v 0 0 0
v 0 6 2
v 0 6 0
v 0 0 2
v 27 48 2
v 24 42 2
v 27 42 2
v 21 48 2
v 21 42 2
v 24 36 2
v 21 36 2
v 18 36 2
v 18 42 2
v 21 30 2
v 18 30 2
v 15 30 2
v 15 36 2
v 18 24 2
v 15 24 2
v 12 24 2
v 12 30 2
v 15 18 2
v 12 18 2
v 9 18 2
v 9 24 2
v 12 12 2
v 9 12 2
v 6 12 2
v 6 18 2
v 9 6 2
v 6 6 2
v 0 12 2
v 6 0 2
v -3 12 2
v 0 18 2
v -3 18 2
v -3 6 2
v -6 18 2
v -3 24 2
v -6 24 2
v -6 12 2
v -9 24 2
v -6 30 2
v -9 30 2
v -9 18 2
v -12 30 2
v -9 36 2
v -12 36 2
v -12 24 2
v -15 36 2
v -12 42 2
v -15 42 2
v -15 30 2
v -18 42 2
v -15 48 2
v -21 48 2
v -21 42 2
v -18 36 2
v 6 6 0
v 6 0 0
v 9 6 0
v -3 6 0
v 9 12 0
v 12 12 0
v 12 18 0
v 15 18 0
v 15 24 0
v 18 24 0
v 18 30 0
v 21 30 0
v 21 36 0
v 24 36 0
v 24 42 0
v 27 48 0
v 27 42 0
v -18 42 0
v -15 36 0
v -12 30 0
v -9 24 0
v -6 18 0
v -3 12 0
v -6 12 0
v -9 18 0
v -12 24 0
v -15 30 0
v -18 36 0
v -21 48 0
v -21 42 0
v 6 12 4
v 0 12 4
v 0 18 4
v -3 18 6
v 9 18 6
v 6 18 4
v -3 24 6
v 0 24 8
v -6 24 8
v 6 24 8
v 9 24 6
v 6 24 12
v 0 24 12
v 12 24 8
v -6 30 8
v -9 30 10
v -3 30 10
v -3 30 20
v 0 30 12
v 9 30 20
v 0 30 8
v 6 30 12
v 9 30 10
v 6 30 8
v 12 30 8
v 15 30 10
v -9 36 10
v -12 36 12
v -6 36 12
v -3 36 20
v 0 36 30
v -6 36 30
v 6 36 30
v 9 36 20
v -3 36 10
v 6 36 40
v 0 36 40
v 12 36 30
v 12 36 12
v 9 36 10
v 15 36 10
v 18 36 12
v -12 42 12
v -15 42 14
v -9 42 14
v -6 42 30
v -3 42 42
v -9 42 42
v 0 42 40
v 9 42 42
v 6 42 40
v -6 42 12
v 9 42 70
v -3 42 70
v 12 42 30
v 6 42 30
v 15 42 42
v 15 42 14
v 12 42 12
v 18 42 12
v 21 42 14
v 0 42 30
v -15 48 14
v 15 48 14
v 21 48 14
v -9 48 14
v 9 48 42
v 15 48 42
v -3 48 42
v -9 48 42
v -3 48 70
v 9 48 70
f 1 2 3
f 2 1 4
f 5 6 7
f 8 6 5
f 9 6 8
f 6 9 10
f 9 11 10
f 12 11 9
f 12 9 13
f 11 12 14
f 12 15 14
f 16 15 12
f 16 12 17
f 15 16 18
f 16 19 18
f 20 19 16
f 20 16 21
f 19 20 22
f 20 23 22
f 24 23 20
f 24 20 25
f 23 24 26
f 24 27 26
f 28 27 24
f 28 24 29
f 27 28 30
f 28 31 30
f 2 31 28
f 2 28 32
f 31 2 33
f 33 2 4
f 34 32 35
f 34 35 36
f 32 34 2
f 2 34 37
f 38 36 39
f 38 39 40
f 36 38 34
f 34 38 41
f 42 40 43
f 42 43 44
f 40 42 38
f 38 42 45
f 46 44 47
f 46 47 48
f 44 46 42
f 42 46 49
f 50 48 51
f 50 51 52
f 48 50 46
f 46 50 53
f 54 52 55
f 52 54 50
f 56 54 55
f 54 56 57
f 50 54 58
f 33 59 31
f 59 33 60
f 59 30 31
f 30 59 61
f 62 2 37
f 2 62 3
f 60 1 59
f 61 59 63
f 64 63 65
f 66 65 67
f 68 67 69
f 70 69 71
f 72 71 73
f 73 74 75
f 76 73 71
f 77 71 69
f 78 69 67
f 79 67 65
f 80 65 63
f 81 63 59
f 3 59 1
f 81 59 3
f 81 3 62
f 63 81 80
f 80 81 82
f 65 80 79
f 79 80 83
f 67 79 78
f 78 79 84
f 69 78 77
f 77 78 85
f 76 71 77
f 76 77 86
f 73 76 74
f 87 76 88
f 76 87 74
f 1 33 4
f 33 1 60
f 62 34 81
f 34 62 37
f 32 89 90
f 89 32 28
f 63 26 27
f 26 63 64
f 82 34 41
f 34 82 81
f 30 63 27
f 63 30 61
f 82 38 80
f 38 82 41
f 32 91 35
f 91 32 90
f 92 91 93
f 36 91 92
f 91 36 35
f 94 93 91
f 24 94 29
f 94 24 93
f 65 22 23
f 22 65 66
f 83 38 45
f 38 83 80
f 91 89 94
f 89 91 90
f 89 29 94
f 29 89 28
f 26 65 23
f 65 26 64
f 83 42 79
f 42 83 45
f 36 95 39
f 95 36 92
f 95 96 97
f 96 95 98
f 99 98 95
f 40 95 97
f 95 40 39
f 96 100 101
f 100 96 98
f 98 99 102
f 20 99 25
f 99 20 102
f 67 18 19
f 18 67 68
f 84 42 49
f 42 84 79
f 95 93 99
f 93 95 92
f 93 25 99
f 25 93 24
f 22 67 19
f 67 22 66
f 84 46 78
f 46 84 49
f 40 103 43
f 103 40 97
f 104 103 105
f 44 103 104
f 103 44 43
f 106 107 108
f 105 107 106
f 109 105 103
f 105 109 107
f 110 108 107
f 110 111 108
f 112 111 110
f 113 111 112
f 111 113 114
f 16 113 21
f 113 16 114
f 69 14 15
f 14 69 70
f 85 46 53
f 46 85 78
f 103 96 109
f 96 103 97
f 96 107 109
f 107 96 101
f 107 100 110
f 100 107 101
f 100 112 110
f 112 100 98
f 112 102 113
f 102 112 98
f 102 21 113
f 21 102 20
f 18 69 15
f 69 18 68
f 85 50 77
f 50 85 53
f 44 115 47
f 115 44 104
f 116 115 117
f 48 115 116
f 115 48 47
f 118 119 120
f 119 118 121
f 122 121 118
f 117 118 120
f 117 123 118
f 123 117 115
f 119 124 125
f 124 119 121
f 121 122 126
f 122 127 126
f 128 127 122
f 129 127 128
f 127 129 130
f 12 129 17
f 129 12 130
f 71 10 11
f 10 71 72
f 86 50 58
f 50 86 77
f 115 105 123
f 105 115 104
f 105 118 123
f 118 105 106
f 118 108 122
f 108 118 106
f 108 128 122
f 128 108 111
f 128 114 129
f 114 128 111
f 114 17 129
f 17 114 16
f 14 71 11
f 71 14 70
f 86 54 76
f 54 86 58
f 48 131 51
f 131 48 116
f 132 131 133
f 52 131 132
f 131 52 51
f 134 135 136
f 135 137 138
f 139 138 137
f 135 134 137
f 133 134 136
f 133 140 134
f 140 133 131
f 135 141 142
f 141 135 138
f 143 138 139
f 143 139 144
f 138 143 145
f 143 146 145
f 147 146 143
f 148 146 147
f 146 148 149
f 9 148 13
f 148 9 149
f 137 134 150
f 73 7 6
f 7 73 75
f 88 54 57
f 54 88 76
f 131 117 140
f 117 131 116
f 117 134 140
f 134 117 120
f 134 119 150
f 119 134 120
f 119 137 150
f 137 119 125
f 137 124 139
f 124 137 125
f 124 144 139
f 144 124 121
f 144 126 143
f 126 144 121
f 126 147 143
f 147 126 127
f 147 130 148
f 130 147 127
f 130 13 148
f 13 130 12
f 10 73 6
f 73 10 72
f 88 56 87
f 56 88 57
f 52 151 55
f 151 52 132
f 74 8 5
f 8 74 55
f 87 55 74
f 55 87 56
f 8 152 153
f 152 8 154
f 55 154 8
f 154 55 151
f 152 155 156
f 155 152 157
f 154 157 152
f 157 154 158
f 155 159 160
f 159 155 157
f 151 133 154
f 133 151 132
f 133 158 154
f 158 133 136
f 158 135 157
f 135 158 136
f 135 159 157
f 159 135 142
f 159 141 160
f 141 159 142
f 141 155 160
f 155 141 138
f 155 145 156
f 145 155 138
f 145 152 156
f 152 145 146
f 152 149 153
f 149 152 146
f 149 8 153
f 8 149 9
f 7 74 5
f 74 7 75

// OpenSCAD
// Pascal's triangle
// File pascal.scad
// This make one triangle
// Because of minimum cooling time issues, we recommend
// also printing a cooling tower or a second set of this print

numRows = 7; //number of rows minus 1
   // value of 7 gives 8 rows
function oddOffset(row) = row;
boxsize = 6; //multiplier in x and y directions, mm
zsize = 2; //multiplier in z direction,mm

//recursive factorial function
//from OpenSCAD documentation example
function factorial(n) = n == 0 ? 1 : factorial(n - 1) * n;

// n choose k function
function nchoosek(n, k) = factorial (n) /
   (factorial(k) * factorial (n-k) );


for(y = [0:numRows], x = [0:y]) {
   union() 
   translate([boxsize*(x-y/2), boxsize*y,0])
   cube([boxsize,boxsize,zsize*nchoosek(y,x)]);
}
// end model
